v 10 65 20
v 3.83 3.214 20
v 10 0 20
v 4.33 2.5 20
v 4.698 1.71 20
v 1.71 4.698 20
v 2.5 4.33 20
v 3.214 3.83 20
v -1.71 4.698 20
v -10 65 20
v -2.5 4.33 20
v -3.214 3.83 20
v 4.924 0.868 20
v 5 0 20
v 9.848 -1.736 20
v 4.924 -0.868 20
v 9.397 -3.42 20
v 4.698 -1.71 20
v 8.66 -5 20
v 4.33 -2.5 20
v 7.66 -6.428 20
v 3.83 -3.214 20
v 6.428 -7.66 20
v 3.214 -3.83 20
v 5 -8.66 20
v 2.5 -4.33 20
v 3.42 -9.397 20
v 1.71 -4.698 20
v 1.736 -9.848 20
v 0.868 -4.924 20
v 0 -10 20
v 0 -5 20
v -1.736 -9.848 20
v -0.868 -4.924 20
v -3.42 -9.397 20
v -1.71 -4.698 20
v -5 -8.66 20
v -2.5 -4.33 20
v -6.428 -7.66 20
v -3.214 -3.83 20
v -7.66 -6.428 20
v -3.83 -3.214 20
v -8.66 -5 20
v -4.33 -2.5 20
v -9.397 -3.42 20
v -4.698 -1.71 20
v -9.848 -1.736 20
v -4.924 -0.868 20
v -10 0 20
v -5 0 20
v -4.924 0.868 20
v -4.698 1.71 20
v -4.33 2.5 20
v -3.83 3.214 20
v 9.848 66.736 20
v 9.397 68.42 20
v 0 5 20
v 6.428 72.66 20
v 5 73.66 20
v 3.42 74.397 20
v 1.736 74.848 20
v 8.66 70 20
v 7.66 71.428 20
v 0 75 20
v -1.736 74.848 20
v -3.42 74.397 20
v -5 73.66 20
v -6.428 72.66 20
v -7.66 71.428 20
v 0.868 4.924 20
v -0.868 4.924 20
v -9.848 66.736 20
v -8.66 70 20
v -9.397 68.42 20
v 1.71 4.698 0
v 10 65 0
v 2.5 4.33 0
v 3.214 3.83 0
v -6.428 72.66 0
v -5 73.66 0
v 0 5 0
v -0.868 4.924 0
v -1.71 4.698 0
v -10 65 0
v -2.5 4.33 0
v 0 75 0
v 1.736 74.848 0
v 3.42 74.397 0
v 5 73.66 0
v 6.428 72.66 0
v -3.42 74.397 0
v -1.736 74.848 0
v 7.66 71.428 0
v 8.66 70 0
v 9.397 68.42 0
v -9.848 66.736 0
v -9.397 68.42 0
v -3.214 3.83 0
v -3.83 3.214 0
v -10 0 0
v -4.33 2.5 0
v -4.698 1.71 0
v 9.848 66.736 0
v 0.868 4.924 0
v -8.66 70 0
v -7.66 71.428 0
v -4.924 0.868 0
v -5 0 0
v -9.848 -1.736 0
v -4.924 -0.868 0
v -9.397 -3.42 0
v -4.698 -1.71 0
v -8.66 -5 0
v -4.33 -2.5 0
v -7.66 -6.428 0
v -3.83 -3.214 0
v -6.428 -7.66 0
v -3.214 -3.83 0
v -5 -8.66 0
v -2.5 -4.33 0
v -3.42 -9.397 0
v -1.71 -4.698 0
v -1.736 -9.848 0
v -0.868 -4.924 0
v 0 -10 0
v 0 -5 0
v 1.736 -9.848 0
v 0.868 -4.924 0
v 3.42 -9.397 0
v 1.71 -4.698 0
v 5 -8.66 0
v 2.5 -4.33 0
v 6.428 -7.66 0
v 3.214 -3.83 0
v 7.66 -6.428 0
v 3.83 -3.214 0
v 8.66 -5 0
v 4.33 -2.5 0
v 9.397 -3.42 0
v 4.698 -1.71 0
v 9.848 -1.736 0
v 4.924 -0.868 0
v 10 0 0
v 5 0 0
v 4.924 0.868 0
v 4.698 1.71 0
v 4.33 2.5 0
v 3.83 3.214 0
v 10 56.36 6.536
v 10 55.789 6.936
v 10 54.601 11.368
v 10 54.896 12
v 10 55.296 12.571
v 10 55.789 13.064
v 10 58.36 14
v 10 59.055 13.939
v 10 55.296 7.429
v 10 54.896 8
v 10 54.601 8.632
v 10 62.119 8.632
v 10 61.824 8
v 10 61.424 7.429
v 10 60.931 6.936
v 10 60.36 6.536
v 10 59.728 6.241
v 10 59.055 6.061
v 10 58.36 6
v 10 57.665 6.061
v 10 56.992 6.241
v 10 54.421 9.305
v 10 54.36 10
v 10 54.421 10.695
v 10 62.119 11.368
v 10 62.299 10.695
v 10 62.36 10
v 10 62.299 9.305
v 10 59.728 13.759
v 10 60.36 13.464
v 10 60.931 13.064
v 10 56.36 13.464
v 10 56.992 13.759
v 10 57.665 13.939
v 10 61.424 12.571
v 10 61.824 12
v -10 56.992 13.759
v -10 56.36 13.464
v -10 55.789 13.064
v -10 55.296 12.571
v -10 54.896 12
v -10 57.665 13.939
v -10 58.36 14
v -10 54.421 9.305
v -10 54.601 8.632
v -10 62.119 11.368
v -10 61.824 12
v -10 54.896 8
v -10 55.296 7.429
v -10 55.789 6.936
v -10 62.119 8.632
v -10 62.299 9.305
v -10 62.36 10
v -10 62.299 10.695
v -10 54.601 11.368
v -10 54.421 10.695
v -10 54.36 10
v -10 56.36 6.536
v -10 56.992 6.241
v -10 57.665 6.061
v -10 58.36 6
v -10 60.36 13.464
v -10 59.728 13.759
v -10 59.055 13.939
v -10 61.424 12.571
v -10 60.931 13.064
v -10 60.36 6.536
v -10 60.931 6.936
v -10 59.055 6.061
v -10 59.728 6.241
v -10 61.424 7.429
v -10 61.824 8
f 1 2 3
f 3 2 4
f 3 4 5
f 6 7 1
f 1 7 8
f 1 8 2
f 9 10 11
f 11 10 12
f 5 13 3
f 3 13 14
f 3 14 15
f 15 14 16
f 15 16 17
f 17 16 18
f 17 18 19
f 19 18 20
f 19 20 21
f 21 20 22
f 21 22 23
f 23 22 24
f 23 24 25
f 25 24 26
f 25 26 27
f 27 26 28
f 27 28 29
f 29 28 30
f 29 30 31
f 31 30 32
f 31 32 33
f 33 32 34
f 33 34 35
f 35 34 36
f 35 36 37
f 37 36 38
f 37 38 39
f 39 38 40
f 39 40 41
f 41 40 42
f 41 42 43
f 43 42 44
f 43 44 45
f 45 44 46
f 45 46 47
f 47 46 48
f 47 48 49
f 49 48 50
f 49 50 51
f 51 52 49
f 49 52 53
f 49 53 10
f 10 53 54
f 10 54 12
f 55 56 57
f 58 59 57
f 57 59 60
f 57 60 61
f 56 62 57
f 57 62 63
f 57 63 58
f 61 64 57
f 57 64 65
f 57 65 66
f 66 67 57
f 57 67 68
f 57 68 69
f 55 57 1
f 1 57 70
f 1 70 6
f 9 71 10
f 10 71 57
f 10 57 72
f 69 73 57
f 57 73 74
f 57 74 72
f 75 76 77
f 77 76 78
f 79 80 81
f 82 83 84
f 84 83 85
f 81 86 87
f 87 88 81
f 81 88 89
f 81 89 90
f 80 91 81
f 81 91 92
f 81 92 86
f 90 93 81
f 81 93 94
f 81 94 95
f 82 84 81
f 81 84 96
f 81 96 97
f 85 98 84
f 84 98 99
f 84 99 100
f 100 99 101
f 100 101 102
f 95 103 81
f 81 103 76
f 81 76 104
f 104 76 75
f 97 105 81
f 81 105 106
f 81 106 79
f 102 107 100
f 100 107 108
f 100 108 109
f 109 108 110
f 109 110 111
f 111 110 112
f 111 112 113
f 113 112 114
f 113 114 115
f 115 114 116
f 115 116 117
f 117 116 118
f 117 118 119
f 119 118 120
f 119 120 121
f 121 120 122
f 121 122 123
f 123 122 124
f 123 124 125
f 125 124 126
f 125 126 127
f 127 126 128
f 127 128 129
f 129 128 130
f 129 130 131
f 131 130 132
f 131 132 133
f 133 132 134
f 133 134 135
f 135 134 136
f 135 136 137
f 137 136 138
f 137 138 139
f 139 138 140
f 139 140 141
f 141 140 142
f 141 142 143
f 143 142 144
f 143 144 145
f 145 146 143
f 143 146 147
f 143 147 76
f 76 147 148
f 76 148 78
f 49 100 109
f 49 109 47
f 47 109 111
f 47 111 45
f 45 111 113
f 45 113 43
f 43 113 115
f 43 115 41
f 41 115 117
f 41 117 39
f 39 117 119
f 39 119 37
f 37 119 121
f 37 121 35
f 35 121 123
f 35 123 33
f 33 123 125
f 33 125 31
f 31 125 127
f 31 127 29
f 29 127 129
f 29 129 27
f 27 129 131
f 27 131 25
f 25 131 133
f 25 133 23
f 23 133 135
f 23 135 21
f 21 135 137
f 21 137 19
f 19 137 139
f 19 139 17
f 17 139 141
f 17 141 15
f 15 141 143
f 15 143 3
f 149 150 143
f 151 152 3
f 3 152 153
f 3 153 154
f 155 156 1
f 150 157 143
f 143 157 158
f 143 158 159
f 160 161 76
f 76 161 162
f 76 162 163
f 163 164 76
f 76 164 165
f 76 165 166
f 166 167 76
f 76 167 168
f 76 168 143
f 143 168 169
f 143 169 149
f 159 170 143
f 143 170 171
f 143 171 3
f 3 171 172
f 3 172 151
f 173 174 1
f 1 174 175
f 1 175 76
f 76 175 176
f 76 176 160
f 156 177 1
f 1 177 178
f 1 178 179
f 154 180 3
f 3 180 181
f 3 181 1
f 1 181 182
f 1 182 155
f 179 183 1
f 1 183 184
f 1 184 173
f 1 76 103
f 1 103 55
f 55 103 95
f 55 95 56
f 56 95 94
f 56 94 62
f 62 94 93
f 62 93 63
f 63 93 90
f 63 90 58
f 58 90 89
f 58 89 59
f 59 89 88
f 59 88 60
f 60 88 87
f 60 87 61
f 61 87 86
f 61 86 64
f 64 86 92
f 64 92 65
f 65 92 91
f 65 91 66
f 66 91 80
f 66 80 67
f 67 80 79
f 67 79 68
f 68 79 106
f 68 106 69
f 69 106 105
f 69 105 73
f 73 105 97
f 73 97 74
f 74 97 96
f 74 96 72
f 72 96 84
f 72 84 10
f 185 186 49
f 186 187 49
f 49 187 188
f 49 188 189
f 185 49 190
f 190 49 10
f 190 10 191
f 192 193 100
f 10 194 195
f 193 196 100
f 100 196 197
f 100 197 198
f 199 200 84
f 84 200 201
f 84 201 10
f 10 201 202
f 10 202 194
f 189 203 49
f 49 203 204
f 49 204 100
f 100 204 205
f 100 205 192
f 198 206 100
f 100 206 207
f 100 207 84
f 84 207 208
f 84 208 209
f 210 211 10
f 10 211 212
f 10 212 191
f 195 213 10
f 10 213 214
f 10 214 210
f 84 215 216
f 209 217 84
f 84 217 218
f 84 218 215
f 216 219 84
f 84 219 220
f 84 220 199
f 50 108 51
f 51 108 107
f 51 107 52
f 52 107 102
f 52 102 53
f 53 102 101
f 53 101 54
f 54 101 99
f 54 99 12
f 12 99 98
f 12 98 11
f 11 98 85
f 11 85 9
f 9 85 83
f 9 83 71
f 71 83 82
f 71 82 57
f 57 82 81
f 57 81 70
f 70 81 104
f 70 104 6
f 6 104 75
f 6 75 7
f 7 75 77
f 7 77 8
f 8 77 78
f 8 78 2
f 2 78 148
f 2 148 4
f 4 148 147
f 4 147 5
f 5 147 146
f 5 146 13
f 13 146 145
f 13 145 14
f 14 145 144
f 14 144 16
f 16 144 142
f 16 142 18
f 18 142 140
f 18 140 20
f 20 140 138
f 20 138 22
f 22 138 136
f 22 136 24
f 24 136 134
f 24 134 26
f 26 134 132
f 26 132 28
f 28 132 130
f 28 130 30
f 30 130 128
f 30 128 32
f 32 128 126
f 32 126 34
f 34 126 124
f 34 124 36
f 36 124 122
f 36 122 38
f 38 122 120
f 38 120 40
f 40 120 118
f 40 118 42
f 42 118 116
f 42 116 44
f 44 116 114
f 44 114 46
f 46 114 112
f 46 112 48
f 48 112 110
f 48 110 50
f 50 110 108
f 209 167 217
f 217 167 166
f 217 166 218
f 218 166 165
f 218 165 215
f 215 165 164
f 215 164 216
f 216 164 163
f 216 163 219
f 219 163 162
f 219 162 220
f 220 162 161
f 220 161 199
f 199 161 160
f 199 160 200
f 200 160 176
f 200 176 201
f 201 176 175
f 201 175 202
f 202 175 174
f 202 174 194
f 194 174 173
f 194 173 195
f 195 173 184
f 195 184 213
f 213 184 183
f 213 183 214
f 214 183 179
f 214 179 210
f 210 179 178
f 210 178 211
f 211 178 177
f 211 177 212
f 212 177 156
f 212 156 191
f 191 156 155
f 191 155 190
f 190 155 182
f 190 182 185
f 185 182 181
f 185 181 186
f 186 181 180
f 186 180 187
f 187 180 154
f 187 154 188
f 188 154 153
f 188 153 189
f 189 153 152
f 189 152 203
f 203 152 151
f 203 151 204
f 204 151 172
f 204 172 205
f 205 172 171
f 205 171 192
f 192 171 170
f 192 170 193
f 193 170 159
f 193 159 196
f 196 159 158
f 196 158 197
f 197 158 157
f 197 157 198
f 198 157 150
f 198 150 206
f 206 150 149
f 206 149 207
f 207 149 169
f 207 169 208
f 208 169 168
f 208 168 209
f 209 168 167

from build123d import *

# Parameters (mm, degrees)
SKETCH2_R           = 5
BOSS_EXTRUDE1_DEPTH = 20
SKETCH4_R           = 4
CUT_EXTRUDE1_DEPTH  = 55


with BuildPart() as part:
    # Sketch2 → Boss-Extrude1 (new body)
    with BuildSketch(Plane.XY):
        with BuildLine():
            Line((-10, 0), (-10, 65))
            ThreePointArc((-10, 65), (0, 75), (10, 65))
            Line((10, 65), (10, 0))
            ThreePointArc((10, 0), (0, -10), (-10, 0))
        make_face()
        Circle(SKETCH2_R, mode=Mode.SUBTRACT)
    extrude(amount=BOSS_EXTRUDE1_DEPTH)

    # Sketch4 → Cut-Extrude1 (cut)
    with BuildSketch(Plane(origin=(10, 0, 0), x_dir=(0, 0, -1), z_dir=(1, 0, 0))):
        with Locations((-10, 58.36)):
            Circle(SKETCH4_R)
    extrude(amount=-CUT_EXTRUDE1_DEPTH, mode=Mode.SUBTRACT)


solid = part.part
